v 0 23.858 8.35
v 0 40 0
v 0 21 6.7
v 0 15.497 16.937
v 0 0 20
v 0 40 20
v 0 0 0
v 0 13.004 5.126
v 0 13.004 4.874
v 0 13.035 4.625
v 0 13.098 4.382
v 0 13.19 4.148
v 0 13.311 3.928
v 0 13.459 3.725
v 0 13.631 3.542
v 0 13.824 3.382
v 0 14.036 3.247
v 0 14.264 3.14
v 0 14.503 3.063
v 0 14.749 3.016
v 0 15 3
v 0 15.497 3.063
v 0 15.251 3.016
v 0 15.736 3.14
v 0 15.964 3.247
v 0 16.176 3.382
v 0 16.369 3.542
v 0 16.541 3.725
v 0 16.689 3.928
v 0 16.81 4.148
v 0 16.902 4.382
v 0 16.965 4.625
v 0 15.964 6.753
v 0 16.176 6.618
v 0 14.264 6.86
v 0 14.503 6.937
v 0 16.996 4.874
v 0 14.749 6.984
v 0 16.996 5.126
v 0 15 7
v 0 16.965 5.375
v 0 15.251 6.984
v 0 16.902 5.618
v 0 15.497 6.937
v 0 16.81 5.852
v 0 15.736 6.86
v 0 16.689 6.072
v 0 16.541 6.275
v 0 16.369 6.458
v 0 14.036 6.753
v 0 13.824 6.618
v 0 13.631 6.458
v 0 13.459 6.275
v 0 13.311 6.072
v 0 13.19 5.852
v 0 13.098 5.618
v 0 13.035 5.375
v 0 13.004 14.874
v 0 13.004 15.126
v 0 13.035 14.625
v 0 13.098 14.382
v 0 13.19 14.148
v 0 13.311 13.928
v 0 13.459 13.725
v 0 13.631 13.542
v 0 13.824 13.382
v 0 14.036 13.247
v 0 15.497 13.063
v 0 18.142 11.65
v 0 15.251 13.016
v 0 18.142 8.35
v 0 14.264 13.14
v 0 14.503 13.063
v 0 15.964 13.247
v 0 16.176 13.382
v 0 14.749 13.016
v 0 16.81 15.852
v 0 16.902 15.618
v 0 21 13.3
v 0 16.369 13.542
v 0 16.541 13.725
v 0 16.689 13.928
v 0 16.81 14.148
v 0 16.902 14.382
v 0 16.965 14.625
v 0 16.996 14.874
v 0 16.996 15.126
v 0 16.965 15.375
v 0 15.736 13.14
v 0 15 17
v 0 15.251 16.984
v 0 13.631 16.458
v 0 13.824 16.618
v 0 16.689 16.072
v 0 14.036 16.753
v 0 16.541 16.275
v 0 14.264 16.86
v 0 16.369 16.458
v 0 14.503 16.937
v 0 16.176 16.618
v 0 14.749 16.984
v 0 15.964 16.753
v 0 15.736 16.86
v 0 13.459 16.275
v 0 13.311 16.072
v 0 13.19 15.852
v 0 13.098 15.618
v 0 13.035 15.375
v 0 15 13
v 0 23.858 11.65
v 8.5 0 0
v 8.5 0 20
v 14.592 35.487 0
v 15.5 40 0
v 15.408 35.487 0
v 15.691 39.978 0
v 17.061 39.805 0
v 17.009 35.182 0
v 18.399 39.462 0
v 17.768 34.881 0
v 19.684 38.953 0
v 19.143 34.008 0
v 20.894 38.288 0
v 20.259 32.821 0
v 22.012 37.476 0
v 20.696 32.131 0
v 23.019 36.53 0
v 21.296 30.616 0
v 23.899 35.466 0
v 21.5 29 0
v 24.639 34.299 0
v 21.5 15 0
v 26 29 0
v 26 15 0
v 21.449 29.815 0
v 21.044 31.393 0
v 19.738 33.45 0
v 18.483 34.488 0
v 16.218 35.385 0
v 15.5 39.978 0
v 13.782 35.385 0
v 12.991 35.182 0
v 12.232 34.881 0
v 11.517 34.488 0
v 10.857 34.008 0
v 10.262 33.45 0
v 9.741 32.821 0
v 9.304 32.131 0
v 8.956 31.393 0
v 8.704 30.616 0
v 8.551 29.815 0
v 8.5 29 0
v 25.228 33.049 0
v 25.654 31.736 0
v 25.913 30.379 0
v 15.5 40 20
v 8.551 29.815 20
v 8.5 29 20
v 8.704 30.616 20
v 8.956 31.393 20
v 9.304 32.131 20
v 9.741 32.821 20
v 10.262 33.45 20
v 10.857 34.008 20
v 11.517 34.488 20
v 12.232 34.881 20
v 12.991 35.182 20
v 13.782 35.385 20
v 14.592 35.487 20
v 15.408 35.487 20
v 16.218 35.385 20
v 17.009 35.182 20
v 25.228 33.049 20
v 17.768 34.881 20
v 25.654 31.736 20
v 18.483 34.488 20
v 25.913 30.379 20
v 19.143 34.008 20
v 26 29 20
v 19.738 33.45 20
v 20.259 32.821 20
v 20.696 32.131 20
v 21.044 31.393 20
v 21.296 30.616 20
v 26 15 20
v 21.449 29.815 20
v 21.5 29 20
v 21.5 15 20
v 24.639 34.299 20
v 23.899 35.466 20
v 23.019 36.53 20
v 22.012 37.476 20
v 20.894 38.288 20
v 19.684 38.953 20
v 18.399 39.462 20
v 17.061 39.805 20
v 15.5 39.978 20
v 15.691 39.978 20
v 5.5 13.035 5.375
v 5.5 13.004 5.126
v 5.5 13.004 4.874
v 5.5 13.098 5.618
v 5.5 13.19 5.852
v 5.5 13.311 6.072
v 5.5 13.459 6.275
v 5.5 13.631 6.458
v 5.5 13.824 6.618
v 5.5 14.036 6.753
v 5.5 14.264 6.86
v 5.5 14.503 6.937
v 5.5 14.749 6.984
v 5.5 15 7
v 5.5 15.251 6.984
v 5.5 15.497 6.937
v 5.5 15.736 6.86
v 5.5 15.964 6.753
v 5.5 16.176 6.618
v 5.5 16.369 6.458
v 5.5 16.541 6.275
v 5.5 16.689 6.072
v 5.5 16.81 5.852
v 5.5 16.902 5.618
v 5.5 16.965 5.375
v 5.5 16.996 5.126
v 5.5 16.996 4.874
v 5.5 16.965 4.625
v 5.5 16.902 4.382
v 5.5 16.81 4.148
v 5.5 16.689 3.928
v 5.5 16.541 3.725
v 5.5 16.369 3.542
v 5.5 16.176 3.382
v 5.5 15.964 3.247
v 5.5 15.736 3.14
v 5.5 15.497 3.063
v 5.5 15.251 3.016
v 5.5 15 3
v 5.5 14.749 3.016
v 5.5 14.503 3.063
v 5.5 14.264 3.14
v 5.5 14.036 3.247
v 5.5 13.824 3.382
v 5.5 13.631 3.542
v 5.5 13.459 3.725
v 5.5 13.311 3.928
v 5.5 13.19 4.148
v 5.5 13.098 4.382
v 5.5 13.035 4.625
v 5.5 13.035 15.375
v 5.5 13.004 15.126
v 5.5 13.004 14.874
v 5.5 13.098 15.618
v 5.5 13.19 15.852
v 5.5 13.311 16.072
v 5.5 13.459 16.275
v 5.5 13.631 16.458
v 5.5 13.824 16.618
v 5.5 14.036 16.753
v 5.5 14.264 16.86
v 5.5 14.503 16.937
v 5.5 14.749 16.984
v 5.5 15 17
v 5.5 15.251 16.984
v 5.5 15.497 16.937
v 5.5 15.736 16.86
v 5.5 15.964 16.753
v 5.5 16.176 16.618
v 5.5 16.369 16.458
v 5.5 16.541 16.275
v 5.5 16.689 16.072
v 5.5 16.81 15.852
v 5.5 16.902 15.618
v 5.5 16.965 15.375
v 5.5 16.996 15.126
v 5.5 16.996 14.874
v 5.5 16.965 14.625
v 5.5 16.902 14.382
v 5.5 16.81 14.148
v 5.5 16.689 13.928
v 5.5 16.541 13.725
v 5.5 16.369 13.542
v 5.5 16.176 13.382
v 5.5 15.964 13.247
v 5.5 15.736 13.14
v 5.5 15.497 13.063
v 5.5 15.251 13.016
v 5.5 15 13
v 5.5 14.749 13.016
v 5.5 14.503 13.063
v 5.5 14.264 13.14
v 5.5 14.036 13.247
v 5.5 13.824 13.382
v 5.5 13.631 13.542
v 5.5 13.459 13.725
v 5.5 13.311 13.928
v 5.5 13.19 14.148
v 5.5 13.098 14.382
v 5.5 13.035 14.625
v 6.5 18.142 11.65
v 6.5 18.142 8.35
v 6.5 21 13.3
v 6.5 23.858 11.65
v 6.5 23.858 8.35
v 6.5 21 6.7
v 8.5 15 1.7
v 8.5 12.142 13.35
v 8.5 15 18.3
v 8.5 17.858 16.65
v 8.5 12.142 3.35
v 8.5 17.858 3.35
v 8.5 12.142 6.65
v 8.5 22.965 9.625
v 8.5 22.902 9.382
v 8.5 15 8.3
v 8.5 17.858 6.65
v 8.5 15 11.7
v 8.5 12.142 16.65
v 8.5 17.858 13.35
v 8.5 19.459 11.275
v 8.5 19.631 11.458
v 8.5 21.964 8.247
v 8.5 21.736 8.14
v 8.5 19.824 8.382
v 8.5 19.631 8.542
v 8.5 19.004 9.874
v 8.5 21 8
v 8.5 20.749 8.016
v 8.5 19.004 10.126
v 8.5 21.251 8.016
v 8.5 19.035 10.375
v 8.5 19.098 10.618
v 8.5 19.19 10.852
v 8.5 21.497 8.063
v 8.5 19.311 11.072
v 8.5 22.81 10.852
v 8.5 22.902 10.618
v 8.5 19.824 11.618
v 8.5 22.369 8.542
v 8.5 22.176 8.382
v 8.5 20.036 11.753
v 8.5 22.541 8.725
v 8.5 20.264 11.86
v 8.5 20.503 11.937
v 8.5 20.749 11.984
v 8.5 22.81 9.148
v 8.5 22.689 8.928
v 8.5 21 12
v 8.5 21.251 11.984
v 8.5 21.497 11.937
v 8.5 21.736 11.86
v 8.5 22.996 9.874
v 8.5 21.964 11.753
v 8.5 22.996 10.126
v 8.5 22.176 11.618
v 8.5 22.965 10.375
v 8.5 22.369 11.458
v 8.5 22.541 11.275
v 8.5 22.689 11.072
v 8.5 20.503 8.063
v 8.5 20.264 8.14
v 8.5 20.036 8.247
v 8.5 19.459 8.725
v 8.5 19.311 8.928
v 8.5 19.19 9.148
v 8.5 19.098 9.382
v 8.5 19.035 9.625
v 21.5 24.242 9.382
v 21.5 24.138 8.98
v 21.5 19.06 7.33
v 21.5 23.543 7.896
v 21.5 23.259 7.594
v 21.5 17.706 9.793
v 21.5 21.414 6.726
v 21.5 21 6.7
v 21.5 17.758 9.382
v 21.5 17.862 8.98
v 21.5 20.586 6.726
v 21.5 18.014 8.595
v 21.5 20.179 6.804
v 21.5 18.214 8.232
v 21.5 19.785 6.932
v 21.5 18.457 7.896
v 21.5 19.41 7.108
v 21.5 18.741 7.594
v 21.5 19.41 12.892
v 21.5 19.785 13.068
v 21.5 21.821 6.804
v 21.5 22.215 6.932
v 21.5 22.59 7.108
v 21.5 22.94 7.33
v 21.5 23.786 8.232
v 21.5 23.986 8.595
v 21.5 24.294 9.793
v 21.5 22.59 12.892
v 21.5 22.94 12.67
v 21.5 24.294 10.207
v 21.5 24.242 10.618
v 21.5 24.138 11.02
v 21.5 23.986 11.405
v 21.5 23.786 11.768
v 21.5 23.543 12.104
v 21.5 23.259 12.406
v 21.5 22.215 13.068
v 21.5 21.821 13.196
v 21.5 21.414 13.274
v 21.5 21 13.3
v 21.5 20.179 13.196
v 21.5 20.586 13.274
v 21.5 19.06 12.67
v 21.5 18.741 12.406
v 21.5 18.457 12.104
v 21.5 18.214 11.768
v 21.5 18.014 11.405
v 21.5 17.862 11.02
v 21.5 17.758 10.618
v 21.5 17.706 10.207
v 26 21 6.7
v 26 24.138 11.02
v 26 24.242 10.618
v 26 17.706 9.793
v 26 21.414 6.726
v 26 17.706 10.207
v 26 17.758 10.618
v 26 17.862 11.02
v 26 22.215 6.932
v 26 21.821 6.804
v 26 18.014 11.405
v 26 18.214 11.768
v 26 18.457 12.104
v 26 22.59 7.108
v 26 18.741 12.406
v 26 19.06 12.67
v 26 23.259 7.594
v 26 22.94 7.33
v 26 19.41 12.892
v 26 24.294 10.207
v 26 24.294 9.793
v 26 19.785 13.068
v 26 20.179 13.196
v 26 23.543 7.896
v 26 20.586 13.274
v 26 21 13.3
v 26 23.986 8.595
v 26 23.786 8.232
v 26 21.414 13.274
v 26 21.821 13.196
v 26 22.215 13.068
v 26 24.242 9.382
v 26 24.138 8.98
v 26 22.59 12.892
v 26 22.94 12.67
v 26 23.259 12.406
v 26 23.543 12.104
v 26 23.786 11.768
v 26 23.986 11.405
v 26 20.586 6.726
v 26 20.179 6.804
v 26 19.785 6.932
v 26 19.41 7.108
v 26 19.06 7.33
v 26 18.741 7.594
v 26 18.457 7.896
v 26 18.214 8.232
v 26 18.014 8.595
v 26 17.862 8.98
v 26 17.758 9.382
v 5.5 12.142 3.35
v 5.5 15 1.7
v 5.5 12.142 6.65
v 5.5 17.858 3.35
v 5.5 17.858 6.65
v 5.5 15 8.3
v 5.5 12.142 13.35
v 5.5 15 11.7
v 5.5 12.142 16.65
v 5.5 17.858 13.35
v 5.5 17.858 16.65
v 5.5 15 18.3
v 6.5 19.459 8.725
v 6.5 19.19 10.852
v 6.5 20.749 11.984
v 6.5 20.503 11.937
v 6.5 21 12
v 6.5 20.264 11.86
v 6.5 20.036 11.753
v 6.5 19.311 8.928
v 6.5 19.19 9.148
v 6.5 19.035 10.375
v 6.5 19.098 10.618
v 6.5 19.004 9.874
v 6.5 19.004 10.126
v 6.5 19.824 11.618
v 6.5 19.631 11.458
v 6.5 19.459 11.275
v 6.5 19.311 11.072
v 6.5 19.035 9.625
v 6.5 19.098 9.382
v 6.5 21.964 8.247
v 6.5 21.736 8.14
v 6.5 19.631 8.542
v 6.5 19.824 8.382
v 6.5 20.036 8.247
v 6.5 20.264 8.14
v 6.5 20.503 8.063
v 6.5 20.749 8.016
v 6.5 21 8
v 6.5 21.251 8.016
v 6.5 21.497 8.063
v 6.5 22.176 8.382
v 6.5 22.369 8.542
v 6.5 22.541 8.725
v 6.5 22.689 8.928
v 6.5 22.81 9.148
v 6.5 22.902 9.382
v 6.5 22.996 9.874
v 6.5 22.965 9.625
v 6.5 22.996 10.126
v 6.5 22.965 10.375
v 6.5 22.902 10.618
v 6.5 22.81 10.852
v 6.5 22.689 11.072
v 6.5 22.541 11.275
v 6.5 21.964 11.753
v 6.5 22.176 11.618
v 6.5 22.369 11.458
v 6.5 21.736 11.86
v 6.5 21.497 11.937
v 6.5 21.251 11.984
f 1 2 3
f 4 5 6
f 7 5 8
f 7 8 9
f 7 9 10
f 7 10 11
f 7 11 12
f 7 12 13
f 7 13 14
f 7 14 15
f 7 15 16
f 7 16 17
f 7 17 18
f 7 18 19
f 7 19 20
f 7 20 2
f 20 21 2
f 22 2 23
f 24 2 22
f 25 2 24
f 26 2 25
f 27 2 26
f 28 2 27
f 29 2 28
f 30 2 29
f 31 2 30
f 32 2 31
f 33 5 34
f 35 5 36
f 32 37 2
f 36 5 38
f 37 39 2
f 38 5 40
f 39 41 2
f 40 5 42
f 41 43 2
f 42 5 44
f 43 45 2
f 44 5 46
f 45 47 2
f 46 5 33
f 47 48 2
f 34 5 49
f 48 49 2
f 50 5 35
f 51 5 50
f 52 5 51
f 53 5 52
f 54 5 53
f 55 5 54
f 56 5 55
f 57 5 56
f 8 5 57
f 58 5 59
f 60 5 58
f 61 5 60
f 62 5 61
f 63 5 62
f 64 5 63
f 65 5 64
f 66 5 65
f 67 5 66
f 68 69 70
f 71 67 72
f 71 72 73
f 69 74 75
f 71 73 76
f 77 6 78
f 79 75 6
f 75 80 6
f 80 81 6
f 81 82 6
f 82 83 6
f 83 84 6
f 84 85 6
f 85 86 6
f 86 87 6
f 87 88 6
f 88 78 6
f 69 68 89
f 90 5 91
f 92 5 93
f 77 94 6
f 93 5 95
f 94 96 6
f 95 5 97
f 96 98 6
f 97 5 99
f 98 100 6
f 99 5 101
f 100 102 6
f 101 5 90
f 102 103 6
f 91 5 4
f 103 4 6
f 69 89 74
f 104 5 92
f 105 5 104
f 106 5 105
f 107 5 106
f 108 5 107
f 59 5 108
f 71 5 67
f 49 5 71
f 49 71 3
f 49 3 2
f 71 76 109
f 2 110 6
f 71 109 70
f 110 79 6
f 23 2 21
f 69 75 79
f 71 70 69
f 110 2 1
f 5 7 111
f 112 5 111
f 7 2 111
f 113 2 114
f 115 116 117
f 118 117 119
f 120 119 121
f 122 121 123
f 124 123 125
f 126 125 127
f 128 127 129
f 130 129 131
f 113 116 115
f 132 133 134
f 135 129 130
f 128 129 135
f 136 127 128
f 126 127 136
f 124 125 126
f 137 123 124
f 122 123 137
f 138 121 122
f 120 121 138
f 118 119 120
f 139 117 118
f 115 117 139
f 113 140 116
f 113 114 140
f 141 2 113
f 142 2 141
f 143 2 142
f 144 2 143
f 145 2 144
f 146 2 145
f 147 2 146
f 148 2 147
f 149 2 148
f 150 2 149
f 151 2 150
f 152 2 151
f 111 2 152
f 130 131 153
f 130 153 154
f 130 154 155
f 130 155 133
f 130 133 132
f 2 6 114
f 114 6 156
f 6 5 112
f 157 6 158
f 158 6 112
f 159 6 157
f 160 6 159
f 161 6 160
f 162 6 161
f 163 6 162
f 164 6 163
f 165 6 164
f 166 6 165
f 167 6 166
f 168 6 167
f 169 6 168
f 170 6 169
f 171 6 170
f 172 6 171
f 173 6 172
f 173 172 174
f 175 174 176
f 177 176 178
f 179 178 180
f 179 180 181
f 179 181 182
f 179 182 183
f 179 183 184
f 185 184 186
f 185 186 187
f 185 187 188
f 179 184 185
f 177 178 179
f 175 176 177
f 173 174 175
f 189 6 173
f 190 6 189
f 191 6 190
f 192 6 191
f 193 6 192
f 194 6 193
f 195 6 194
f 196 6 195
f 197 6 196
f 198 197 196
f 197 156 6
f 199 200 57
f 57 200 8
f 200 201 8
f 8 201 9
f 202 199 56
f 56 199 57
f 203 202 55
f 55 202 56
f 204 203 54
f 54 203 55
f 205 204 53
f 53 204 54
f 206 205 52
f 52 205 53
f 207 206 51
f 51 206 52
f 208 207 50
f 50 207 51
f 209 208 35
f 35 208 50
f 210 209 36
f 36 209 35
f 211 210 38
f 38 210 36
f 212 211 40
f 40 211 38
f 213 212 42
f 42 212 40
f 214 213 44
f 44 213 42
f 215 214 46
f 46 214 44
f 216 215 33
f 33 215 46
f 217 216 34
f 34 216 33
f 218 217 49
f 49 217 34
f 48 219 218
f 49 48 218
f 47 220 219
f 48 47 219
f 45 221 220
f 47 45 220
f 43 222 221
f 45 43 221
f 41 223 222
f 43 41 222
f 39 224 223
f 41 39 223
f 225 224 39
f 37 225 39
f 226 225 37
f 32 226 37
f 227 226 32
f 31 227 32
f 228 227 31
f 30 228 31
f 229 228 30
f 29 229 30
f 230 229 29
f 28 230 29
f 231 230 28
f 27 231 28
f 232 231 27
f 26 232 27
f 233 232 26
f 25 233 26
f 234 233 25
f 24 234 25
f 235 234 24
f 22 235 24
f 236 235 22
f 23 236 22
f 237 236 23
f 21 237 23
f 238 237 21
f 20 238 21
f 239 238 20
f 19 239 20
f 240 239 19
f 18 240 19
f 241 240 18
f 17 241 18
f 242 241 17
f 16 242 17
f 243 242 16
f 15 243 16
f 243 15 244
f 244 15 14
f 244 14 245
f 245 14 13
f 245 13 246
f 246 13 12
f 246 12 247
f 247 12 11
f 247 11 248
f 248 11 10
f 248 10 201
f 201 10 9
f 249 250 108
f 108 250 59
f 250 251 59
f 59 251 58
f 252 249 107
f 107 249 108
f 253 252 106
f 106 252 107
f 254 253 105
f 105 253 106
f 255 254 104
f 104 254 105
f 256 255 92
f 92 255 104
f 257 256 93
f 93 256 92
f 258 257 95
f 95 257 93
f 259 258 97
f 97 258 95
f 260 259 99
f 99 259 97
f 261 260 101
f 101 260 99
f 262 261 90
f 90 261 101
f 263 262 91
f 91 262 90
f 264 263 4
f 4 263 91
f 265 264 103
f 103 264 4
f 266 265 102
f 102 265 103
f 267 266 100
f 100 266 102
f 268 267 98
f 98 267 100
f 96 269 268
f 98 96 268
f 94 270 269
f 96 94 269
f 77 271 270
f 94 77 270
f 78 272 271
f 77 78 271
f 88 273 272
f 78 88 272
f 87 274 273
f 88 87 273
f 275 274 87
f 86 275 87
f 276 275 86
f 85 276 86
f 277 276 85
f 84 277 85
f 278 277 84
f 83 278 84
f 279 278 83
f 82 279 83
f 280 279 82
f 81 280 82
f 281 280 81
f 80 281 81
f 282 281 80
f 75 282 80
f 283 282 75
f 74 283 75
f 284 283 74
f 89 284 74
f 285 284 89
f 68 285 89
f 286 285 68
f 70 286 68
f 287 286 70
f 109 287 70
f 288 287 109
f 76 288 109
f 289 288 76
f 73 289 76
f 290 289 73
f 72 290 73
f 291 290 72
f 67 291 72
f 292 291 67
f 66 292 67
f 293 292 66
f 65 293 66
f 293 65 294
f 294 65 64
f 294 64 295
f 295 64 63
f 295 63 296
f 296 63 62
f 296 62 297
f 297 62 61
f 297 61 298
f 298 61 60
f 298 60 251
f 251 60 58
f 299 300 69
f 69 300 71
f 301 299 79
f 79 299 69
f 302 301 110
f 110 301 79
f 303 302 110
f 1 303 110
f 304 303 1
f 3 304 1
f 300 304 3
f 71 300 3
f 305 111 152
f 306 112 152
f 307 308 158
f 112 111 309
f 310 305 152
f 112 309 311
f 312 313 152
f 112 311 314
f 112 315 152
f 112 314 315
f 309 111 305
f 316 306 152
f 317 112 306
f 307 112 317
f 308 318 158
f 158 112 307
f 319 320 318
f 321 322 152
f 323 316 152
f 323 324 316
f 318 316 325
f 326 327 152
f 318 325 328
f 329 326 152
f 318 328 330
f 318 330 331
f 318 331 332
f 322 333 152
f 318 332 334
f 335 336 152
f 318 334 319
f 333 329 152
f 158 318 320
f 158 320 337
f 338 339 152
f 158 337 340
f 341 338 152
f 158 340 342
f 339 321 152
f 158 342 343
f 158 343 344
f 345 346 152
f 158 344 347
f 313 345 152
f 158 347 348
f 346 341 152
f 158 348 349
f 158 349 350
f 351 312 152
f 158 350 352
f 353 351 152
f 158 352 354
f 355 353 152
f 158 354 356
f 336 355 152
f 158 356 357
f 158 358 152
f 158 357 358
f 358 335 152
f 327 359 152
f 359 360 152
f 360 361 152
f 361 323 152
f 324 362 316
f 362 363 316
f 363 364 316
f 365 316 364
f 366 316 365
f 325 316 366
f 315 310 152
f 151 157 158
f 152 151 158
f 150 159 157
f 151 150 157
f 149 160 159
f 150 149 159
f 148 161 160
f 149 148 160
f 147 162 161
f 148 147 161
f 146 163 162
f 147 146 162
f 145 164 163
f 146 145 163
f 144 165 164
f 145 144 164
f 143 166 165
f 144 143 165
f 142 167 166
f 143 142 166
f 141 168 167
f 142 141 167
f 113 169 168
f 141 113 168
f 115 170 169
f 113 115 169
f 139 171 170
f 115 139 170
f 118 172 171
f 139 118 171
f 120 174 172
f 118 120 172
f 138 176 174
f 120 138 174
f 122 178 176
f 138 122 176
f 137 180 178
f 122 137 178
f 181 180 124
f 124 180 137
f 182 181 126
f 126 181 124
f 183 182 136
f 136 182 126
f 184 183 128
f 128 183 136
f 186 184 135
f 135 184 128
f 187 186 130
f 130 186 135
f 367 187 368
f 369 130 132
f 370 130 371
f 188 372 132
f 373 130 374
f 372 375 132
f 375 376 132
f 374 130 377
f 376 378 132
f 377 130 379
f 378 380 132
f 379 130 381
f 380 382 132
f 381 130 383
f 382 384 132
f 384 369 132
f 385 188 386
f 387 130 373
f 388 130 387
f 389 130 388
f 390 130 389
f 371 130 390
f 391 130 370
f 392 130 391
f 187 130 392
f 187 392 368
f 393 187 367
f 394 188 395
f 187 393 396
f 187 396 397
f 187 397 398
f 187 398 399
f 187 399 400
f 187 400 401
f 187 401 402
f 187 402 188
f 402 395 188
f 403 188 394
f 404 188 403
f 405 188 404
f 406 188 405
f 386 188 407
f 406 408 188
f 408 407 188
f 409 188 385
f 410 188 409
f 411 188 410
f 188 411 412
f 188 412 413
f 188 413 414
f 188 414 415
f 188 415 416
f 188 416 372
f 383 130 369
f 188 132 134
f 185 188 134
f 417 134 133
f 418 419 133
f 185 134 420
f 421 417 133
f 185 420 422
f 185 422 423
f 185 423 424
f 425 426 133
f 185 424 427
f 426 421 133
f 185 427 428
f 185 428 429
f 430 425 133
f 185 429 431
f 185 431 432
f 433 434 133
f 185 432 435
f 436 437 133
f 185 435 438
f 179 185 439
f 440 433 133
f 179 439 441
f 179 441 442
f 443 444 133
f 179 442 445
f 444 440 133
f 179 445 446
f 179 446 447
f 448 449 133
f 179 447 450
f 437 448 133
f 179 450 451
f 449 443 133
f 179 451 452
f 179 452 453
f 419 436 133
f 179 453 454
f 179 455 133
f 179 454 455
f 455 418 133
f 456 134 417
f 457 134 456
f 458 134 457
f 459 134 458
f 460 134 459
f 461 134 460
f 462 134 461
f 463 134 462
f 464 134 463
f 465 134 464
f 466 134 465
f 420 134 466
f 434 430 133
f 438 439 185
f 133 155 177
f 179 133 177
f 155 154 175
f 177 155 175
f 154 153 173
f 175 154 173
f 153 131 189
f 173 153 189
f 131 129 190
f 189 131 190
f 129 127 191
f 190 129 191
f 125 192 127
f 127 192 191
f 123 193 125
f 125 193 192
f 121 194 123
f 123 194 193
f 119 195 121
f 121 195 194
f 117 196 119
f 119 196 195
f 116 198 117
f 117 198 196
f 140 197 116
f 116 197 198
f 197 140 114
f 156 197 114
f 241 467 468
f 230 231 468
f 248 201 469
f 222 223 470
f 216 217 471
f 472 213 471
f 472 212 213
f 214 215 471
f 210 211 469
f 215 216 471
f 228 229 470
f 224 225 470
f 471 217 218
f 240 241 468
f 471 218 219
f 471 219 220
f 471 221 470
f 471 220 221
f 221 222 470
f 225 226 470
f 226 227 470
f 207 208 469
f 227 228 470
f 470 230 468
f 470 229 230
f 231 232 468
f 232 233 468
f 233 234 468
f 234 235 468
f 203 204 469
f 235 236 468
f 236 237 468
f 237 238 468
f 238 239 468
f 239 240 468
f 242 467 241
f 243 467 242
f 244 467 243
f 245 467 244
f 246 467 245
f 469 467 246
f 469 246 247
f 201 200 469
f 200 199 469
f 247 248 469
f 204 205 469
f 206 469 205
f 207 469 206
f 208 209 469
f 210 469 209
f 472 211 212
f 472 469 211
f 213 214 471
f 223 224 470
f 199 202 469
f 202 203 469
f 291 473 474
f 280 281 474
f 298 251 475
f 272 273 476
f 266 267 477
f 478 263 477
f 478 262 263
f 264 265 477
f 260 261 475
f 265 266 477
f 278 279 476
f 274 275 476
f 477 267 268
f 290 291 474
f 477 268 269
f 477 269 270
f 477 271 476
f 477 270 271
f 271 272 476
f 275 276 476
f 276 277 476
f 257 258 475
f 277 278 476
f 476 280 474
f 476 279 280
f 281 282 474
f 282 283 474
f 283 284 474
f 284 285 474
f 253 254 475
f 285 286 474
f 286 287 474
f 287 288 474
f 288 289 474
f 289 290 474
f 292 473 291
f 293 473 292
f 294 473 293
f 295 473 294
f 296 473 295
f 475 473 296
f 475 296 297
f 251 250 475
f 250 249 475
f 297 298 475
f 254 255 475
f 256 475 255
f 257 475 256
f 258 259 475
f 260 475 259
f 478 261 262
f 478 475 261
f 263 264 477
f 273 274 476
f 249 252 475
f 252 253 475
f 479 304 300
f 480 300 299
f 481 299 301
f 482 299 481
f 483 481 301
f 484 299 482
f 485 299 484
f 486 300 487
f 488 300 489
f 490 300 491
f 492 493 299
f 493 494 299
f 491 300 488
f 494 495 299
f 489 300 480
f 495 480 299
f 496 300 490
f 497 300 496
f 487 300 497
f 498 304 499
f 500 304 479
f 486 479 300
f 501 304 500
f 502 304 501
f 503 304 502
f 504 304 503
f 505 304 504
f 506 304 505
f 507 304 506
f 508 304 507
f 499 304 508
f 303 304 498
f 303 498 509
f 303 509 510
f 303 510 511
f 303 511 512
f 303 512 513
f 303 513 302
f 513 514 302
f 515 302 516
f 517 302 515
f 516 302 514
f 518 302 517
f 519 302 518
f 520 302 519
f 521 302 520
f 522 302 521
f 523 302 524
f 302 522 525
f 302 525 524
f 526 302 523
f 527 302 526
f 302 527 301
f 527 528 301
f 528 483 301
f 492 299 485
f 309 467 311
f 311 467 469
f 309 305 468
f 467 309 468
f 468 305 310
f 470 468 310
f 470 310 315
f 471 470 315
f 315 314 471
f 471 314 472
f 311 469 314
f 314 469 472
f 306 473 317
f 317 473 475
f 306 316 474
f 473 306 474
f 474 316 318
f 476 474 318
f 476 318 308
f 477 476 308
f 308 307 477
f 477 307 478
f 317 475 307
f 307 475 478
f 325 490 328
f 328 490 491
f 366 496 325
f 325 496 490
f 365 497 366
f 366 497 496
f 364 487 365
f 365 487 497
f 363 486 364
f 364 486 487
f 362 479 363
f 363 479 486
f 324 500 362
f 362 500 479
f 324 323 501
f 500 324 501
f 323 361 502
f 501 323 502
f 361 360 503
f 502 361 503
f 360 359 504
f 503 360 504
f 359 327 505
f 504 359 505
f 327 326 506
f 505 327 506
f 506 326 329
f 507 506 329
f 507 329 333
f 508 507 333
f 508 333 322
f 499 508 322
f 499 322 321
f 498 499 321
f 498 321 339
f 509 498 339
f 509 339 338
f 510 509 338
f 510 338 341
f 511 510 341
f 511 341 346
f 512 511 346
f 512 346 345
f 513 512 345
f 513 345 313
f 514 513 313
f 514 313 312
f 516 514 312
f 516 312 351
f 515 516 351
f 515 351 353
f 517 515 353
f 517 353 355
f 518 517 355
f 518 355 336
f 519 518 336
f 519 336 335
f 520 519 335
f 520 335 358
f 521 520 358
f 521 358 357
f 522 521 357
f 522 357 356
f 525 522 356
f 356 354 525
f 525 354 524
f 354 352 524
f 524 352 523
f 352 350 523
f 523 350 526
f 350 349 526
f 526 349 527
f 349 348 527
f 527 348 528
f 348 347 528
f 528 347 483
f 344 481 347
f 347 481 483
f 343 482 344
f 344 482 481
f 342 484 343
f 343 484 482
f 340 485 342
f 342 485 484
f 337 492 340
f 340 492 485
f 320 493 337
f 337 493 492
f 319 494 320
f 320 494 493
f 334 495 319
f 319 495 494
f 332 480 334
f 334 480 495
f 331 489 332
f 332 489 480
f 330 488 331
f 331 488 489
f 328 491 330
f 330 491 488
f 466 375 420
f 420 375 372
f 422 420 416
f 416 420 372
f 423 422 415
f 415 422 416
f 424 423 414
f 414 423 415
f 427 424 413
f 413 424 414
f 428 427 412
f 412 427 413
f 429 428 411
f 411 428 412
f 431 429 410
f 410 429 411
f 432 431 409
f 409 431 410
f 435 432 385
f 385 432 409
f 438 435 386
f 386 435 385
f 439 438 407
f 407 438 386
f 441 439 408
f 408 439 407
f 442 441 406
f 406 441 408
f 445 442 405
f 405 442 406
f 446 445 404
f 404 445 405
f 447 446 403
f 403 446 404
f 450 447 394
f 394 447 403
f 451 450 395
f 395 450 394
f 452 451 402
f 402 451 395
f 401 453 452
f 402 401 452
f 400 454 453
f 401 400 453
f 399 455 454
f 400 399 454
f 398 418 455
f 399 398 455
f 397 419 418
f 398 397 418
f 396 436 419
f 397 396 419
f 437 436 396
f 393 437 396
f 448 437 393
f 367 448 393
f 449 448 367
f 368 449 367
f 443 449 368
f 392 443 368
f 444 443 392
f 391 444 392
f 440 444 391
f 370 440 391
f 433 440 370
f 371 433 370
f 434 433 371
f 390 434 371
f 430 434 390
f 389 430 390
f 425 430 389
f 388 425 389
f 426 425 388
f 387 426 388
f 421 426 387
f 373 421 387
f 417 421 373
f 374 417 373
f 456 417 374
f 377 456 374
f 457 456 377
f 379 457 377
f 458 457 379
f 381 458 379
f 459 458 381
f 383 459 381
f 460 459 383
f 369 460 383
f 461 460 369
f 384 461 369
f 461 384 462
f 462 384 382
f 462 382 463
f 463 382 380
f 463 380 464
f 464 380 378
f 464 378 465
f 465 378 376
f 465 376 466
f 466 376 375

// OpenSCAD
r_tube=6.5;
longueur=40;
l1=8.5;
hauteur=20;
trou_m3=2;
ecrou_m3=3.3;
r_cer=11;

module rangement_portique(){
	difference(){
		union(){ //formes de base
			cube([l1,longueur,hauteur]);
			translate([l1,longueur/2-5,0]){cube([17.5,9,hauteur]);}
			translate([15,29,0]){cylinder(h=hauteur, r=r_cer, $fn=50);}
			translate([l1,longueur-5,0]){cube([7,5,hauteur]);}
			translate([21,21,0]){cube([5,8,hauteur]);}
		}
			// passage pour placer le tube
			translate([15,29,-5]){cylinder(h=hauteur+10, r=r_tube, $fn=50);}
			translate([l1,0,-5]){cube([r_tube*2,29,hauteur+10]);}
			
			//trous de fixation à la mallette
			translate([-5,15,5]){rotate([0,90,0])cylinder(h=l1+10, r=trou_m3, $fn=50);}
			translate([l1-3,15,5]){rotate([0,90,0])cylinder(h=5, r=ecrou_m3, $fn=6);}
			
			translate([-5,15,hauteur-5]){rotate([0,90,0])cylinder(h=l1+10, r=trou_m3, $fn=50);}
			translate([l1-3,15,hauteur-5]){rotate([0,90,0])cylinder(h=5, r=ecrou_m3, $fn=6);}
			
			//trou pour blocage portique avec molette
			translate([-5,21,hauteur/2]){rotate([0,90,0])cylinder(h=50, r=trou_m3, $fn=50);}
			translate([l1+1,21,hauteur/2]){rotate([0,90,0])cylinder(h=50, r=ecrou_m3, $fn=50);}
			translate([-5,21,hauteur/2]){rotate([0,90,0])cylinder(h=5+l1-2, r=ecrou_m3, $fn=6);}
	}
}
rangement_portique();
